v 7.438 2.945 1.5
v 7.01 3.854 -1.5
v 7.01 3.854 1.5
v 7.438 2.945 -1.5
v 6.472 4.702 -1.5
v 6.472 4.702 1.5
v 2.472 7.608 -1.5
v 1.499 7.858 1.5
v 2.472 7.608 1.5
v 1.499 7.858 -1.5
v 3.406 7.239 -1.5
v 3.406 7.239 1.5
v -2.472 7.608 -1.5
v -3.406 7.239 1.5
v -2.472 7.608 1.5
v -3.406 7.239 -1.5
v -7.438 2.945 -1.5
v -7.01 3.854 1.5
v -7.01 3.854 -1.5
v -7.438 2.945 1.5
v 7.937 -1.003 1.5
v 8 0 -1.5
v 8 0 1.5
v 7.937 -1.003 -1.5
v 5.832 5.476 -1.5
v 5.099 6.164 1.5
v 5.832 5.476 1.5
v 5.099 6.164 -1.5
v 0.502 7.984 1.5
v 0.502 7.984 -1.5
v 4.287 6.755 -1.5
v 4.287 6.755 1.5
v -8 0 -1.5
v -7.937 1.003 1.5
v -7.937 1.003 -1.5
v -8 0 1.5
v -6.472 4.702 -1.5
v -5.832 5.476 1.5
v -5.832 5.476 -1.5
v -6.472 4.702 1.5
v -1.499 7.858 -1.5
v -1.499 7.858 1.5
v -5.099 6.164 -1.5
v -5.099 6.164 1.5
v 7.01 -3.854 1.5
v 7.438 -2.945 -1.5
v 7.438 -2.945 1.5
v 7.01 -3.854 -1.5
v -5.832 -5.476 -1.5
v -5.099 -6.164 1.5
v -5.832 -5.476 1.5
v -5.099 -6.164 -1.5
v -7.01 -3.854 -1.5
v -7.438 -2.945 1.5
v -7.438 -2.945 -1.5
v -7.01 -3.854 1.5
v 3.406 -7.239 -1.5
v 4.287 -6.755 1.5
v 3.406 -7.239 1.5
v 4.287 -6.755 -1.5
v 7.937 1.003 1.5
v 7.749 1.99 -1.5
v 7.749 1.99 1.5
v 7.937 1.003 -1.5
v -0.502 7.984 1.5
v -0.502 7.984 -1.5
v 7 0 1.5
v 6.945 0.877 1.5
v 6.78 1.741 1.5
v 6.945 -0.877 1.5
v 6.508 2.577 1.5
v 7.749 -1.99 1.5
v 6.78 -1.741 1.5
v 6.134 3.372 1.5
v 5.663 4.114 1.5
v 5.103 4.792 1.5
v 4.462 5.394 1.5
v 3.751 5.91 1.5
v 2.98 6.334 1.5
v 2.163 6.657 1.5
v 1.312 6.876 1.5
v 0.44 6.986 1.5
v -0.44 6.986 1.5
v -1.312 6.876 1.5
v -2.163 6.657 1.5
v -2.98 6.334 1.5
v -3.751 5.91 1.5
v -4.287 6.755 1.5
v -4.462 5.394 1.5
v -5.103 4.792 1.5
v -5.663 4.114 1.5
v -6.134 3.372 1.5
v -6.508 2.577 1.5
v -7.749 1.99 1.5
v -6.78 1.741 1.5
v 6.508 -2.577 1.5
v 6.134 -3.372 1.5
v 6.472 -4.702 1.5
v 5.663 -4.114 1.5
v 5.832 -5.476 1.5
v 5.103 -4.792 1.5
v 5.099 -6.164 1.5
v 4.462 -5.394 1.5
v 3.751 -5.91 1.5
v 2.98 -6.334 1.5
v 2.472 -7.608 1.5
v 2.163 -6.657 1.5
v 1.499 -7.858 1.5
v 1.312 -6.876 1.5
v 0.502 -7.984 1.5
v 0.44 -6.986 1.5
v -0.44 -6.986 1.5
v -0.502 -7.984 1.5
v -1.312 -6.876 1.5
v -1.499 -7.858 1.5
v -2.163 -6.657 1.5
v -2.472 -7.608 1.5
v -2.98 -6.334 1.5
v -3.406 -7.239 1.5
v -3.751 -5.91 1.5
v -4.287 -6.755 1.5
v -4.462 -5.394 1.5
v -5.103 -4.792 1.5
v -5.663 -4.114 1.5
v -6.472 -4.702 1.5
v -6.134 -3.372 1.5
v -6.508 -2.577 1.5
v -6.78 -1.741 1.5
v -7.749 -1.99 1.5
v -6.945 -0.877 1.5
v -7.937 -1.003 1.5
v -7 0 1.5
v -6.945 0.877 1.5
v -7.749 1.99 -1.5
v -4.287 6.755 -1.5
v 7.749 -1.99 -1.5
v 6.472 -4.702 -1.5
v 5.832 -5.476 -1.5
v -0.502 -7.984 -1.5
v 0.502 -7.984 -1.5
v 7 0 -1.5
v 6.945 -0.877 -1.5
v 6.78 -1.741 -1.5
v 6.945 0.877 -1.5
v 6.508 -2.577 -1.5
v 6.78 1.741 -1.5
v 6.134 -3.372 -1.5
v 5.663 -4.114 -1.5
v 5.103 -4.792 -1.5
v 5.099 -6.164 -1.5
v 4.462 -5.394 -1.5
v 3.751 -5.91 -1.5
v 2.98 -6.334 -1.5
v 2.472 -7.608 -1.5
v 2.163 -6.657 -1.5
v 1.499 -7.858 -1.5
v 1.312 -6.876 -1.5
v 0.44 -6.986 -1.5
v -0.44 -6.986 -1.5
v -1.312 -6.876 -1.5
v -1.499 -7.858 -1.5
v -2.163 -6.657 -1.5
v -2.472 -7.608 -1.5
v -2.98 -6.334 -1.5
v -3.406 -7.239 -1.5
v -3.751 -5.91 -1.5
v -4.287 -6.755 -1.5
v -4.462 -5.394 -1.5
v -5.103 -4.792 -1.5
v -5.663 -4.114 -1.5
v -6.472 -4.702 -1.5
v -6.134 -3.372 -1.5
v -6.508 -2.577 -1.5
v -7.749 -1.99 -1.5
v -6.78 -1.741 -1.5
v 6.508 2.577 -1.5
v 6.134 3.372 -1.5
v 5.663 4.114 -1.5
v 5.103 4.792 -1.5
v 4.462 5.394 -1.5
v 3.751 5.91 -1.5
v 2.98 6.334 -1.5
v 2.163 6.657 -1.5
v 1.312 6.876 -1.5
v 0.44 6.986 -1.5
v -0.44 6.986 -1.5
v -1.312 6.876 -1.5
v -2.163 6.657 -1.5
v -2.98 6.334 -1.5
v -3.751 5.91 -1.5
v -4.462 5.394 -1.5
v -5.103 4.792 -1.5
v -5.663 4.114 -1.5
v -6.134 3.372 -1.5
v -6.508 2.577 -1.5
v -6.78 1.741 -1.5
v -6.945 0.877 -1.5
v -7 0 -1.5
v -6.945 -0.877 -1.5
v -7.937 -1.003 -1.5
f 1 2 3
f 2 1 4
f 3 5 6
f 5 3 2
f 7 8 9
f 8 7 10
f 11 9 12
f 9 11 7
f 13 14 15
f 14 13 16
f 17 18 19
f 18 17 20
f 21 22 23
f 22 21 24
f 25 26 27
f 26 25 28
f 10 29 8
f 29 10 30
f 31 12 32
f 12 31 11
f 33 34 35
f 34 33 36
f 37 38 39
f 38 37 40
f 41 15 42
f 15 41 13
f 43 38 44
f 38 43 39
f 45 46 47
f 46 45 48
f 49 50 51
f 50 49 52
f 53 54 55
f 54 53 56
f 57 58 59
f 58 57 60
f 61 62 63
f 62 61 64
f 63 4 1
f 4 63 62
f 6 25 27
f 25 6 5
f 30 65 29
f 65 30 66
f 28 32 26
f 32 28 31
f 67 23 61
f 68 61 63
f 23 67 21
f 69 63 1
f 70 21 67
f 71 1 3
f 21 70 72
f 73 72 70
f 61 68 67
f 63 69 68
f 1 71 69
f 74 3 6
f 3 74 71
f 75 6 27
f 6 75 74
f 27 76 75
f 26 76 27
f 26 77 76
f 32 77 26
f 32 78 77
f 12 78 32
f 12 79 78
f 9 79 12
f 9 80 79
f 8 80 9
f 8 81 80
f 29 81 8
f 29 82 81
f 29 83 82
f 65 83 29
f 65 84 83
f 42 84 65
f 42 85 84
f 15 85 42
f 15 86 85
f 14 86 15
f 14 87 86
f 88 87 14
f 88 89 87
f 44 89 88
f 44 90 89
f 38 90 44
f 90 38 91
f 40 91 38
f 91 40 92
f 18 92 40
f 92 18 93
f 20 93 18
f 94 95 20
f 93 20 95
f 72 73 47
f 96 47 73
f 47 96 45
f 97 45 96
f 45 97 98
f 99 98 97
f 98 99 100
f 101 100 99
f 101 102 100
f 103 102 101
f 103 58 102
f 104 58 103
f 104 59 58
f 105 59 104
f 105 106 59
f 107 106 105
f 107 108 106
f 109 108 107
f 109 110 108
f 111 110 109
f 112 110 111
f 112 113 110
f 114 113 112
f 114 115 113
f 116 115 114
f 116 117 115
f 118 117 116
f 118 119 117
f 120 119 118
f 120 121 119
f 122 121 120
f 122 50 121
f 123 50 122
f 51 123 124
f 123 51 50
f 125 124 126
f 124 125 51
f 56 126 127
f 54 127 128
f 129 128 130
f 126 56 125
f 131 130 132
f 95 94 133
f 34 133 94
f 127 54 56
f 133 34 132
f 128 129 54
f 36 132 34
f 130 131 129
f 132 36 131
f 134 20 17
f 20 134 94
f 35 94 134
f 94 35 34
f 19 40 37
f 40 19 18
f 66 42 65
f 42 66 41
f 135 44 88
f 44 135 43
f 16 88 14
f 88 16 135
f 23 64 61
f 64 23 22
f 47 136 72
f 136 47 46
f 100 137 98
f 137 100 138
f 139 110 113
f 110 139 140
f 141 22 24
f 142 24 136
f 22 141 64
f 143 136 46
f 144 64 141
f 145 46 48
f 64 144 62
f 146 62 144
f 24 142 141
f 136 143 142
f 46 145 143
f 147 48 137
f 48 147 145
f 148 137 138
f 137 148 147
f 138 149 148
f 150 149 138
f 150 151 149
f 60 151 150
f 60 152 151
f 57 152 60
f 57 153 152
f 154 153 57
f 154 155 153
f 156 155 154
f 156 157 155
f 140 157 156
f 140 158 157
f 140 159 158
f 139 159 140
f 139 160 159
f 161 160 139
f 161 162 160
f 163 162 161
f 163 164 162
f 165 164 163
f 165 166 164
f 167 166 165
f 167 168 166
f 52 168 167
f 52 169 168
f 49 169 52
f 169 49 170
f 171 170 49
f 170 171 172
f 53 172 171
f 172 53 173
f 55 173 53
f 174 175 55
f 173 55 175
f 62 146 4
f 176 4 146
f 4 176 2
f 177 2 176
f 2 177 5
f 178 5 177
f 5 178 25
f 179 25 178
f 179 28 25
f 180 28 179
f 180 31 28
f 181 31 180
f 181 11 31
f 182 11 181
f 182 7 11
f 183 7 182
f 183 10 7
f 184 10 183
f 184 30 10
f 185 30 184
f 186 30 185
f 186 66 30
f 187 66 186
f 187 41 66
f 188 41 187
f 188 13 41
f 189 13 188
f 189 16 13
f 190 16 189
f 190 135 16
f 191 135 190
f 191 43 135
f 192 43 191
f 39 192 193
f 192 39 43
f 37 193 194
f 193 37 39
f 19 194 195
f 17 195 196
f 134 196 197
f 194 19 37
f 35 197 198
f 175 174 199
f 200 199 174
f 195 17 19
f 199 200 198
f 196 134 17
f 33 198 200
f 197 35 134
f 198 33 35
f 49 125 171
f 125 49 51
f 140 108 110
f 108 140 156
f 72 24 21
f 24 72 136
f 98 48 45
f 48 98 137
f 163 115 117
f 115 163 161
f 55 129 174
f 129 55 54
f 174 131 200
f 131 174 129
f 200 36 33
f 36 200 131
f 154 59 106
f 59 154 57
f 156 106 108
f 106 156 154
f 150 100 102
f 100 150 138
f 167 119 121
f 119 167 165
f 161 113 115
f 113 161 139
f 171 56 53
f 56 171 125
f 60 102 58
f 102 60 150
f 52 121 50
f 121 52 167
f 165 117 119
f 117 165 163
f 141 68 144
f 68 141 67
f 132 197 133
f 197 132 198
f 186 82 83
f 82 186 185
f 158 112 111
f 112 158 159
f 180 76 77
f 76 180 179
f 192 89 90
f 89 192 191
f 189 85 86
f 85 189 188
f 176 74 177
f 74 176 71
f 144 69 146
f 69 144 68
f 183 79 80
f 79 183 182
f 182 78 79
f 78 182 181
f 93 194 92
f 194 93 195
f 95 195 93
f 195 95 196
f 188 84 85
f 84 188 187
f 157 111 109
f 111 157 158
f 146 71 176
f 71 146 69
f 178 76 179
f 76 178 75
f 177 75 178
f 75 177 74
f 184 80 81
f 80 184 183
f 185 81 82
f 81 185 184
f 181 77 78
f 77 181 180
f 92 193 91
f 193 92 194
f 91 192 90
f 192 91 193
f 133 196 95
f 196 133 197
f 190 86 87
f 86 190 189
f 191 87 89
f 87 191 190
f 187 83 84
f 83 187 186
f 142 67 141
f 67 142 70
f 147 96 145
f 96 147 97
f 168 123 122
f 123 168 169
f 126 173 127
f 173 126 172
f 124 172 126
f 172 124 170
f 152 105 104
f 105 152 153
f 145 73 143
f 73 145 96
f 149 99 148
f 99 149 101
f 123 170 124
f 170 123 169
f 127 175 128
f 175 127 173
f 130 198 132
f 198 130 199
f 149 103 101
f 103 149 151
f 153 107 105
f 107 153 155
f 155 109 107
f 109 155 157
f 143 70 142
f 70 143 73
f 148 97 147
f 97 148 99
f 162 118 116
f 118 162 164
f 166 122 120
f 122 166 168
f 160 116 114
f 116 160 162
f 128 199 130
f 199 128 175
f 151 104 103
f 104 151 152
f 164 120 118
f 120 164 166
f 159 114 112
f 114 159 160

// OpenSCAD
$fn = 50;


difference() {
	union() {
		translate(v = [0, 0, -1.5000000000]) {
			cylinder(h = 3, r = 8.0000000000);
		}
	}
	union() {
		translate(v = [0, 0, -100.0000000000]) {
			cylinder(h = 200, r = 7);
		}
	}
}
